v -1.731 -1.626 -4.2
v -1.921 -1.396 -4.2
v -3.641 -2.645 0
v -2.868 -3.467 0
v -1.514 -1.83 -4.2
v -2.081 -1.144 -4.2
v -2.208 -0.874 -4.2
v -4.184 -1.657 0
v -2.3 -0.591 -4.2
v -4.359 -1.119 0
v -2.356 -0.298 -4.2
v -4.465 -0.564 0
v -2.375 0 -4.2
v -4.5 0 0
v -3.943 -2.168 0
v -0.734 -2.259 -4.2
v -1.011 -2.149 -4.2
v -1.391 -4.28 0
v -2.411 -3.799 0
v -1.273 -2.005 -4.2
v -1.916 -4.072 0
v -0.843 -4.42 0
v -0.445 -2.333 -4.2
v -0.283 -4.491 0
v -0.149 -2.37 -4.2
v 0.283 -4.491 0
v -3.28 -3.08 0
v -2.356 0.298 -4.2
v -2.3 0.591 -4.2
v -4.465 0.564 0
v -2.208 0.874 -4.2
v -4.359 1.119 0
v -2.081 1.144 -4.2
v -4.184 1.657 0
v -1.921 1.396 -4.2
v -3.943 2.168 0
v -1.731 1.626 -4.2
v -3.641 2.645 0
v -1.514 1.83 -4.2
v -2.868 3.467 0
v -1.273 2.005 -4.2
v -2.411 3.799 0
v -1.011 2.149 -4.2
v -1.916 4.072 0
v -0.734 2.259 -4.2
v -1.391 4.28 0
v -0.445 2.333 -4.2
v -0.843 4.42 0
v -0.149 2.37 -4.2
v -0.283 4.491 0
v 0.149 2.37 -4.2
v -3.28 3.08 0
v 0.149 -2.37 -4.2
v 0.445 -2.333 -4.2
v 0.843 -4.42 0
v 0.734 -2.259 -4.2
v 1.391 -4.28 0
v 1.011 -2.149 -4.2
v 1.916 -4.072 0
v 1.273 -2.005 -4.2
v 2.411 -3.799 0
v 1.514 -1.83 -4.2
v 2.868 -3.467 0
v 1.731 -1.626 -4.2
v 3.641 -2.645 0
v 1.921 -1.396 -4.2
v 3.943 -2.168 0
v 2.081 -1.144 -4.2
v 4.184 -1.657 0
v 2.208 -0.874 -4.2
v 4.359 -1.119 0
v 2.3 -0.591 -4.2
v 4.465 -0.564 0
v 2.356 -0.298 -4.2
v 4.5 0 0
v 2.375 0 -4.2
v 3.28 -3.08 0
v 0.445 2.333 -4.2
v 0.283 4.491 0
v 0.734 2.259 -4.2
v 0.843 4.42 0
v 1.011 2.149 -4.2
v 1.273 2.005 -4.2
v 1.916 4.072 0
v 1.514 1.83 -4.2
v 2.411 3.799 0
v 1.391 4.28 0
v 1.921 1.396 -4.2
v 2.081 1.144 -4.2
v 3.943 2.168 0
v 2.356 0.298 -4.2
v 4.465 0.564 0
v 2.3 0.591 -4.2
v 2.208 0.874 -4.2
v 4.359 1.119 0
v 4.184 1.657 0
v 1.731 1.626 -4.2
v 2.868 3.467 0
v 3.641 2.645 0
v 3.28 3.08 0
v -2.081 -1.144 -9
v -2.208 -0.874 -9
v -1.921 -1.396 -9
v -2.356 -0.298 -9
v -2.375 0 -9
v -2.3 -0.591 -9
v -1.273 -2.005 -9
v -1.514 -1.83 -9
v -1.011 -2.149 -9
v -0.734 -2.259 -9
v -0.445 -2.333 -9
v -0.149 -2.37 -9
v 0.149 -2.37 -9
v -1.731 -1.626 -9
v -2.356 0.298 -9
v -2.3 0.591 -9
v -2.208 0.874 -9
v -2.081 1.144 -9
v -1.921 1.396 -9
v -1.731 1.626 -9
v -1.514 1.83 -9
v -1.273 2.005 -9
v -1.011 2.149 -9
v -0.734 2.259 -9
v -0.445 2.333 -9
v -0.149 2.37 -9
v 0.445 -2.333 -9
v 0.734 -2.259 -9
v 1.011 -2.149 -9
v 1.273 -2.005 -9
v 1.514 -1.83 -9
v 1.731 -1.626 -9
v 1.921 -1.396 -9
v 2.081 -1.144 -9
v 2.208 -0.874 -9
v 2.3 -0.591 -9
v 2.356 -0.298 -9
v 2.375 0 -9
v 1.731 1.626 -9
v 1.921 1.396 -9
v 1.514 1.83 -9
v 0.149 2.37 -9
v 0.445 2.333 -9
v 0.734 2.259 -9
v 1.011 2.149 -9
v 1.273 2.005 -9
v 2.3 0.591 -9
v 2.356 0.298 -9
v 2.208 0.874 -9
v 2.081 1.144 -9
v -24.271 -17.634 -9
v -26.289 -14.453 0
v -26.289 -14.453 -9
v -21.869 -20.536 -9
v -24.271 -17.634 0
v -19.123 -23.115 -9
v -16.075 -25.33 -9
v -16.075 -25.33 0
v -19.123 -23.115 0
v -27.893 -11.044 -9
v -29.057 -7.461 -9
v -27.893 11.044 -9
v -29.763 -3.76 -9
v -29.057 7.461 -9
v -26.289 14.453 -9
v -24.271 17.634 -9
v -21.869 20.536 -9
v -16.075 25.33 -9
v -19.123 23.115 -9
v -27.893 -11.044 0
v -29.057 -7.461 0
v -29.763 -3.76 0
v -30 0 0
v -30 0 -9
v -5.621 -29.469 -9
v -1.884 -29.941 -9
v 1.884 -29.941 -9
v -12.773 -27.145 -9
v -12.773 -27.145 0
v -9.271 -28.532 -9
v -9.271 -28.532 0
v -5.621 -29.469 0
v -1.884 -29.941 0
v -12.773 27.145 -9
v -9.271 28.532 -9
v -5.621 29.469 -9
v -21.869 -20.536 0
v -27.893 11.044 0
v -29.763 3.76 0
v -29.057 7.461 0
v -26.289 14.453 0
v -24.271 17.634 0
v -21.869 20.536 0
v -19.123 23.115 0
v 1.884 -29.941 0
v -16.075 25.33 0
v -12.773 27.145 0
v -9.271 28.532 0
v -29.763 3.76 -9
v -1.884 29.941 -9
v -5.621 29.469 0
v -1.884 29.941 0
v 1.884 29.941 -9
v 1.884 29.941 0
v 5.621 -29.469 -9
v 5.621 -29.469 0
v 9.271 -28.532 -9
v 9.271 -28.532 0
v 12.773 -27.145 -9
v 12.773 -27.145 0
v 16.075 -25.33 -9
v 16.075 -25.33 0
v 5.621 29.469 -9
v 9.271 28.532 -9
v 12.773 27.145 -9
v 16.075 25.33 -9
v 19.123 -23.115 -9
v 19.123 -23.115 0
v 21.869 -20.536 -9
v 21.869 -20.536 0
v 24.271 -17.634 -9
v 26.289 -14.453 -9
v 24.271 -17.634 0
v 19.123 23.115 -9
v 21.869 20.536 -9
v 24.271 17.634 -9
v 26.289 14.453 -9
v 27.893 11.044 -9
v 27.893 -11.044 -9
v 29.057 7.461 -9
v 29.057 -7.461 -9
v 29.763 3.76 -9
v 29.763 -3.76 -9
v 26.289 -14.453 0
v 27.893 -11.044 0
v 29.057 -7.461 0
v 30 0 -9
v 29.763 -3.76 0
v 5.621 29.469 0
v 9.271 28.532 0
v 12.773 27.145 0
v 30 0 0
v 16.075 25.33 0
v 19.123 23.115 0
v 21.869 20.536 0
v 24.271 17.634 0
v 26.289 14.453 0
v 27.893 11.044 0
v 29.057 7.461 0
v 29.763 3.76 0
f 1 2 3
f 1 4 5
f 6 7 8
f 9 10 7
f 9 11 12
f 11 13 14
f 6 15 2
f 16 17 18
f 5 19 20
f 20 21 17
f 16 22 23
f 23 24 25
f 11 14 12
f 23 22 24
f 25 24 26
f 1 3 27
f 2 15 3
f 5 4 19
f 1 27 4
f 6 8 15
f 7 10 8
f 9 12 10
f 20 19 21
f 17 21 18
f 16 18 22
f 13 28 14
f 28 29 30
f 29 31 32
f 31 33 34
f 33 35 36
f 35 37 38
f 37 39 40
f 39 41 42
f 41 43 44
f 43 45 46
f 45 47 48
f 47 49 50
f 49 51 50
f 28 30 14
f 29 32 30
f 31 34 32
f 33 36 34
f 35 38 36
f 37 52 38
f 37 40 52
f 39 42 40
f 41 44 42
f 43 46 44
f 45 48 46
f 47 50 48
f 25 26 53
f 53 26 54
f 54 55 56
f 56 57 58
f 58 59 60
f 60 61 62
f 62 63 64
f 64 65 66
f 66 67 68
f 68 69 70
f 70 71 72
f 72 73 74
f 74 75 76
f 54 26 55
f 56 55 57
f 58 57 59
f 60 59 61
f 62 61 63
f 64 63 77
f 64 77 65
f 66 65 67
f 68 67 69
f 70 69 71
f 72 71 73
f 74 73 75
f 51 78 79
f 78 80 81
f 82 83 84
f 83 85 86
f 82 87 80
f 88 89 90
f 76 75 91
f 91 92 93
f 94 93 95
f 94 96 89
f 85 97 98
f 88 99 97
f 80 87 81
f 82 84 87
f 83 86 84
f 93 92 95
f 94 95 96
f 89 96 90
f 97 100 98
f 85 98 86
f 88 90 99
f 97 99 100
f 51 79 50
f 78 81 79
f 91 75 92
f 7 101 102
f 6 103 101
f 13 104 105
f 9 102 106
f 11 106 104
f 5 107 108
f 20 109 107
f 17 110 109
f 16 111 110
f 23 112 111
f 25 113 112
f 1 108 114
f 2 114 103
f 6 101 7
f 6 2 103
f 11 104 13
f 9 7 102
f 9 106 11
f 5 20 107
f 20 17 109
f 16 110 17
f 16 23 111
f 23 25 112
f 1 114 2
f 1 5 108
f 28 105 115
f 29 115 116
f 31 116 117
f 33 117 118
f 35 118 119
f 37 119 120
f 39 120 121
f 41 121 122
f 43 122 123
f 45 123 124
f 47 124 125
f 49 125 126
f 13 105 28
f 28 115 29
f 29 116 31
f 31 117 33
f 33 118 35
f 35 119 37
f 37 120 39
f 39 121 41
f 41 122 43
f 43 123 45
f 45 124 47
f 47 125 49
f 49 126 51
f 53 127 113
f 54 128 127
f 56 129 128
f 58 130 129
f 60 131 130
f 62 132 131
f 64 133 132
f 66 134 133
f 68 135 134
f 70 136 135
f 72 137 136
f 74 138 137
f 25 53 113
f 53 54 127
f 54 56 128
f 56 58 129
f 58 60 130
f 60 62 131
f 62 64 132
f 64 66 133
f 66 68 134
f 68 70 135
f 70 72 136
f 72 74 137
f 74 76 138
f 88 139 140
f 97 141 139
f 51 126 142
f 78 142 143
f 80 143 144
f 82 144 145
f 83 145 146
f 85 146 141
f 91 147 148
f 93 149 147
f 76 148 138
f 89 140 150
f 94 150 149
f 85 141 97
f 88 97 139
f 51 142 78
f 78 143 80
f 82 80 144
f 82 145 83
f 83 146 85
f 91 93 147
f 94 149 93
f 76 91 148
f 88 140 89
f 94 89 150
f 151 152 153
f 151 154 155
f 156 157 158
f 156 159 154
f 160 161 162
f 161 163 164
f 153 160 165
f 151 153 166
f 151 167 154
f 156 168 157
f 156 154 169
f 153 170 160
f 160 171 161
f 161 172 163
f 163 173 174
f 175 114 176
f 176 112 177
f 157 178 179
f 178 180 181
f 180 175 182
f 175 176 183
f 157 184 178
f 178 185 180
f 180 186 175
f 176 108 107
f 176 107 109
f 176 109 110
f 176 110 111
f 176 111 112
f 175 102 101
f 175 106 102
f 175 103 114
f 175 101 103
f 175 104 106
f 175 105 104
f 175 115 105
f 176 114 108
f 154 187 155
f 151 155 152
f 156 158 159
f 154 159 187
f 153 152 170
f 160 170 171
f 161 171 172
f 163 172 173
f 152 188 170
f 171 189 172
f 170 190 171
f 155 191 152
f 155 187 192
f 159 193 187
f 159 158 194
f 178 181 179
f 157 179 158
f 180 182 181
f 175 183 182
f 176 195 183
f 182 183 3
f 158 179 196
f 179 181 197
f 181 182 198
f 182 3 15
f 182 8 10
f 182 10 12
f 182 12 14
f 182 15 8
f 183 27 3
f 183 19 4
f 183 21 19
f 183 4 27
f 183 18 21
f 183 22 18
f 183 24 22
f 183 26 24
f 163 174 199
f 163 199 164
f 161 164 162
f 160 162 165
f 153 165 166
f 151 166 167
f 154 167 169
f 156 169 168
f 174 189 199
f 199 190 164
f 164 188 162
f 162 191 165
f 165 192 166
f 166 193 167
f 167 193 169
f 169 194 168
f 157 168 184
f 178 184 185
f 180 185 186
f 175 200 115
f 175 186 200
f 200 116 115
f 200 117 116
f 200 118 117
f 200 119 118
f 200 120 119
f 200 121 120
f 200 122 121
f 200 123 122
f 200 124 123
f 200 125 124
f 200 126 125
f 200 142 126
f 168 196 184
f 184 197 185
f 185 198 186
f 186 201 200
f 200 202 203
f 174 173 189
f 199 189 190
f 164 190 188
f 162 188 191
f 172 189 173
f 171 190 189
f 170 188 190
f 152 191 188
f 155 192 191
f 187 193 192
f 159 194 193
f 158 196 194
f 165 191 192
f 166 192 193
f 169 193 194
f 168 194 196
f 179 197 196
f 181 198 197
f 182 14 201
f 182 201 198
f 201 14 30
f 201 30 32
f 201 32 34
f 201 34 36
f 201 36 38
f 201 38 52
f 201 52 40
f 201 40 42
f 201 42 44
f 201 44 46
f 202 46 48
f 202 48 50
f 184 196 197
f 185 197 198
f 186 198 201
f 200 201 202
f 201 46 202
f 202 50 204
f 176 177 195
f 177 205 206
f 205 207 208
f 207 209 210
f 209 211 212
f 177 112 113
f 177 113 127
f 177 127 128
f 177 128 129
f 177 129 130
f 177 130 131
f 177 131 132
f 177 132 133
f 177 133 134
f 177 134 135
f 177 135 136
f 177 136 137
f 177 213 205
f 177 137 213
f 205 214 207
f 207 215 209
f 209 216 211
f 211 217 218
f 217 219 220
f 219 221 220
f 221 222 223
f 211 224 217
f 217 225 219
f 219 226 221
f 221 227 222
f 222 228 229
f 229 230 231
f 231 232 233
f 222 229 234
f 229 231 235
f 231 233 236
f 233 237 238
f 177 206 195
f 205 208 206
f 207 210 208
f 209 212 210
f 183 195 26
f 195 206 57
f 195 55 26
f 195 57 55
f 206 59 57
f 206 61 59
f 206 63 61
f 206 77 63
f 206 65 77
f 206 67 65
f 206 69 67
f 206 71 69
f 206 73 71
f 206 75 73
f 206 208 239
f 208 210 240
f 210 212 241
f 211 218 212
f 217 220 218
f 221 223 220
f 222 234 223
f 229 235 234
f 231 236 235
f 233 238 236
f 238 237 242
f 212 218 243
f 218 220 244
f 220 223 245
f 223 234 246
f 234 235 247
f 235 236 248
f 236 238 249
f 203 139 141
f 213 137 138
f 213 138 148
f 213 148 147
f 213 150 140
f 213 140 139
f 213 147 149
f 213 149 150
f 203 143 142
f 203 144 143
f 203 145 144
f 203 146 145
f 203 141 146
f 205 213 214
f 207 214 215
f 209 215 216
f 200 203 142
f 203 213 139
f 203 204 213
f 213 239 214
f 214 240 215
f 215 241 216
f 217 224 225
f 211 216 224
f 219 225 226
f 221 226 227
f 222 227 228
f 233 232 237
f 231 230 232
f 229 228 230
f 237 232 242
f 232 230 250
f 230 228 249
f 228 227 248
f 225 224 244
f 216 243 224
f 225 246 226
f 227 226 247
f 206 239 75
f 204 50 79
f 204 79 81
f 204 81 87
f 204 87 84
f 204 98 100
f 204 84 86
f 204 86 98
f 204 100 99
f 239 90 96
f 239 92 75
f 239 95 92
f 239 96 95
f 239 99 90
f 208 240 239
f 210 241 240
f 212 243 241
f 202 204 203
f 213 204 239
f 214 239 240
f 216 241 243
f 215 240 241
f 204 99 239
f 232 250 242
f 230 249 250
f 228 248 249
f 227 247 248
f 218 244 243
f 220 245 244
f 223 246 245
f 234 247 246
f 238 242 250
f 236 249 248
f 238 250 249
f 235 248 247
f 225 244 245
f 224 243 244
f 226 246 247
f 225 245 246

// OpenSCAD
$fn = 50;

difference() {
	union() {
		translate(v = [0, 0, -9.0]) {
			cylinder(h = 9, r = 30.0);
		}
	}
	union() {
		translate(v = [0, 0, 0]) {
			rotate(a = [0, 0, 0]) {
				difference() {
					union() {
						translate(v = [0, 0, -12.0]) {
							cylinder(h = 12, r = 2.25);
						}
						translate(v = [0, 0, -4.2]) {
							cylinder(h = 4.2, r1 = 2.375, r2 = 4.5);
						}
						translate(v = [0, 0, -12.0]) {
							cylinder(h = 12, r = 2.375);
						}
						translate(v = [0, 0, -12.0]) {
							cylinder(h = 12, r = 2.25);
						}
					}
					union();
				}
			}
		}
	}
}
